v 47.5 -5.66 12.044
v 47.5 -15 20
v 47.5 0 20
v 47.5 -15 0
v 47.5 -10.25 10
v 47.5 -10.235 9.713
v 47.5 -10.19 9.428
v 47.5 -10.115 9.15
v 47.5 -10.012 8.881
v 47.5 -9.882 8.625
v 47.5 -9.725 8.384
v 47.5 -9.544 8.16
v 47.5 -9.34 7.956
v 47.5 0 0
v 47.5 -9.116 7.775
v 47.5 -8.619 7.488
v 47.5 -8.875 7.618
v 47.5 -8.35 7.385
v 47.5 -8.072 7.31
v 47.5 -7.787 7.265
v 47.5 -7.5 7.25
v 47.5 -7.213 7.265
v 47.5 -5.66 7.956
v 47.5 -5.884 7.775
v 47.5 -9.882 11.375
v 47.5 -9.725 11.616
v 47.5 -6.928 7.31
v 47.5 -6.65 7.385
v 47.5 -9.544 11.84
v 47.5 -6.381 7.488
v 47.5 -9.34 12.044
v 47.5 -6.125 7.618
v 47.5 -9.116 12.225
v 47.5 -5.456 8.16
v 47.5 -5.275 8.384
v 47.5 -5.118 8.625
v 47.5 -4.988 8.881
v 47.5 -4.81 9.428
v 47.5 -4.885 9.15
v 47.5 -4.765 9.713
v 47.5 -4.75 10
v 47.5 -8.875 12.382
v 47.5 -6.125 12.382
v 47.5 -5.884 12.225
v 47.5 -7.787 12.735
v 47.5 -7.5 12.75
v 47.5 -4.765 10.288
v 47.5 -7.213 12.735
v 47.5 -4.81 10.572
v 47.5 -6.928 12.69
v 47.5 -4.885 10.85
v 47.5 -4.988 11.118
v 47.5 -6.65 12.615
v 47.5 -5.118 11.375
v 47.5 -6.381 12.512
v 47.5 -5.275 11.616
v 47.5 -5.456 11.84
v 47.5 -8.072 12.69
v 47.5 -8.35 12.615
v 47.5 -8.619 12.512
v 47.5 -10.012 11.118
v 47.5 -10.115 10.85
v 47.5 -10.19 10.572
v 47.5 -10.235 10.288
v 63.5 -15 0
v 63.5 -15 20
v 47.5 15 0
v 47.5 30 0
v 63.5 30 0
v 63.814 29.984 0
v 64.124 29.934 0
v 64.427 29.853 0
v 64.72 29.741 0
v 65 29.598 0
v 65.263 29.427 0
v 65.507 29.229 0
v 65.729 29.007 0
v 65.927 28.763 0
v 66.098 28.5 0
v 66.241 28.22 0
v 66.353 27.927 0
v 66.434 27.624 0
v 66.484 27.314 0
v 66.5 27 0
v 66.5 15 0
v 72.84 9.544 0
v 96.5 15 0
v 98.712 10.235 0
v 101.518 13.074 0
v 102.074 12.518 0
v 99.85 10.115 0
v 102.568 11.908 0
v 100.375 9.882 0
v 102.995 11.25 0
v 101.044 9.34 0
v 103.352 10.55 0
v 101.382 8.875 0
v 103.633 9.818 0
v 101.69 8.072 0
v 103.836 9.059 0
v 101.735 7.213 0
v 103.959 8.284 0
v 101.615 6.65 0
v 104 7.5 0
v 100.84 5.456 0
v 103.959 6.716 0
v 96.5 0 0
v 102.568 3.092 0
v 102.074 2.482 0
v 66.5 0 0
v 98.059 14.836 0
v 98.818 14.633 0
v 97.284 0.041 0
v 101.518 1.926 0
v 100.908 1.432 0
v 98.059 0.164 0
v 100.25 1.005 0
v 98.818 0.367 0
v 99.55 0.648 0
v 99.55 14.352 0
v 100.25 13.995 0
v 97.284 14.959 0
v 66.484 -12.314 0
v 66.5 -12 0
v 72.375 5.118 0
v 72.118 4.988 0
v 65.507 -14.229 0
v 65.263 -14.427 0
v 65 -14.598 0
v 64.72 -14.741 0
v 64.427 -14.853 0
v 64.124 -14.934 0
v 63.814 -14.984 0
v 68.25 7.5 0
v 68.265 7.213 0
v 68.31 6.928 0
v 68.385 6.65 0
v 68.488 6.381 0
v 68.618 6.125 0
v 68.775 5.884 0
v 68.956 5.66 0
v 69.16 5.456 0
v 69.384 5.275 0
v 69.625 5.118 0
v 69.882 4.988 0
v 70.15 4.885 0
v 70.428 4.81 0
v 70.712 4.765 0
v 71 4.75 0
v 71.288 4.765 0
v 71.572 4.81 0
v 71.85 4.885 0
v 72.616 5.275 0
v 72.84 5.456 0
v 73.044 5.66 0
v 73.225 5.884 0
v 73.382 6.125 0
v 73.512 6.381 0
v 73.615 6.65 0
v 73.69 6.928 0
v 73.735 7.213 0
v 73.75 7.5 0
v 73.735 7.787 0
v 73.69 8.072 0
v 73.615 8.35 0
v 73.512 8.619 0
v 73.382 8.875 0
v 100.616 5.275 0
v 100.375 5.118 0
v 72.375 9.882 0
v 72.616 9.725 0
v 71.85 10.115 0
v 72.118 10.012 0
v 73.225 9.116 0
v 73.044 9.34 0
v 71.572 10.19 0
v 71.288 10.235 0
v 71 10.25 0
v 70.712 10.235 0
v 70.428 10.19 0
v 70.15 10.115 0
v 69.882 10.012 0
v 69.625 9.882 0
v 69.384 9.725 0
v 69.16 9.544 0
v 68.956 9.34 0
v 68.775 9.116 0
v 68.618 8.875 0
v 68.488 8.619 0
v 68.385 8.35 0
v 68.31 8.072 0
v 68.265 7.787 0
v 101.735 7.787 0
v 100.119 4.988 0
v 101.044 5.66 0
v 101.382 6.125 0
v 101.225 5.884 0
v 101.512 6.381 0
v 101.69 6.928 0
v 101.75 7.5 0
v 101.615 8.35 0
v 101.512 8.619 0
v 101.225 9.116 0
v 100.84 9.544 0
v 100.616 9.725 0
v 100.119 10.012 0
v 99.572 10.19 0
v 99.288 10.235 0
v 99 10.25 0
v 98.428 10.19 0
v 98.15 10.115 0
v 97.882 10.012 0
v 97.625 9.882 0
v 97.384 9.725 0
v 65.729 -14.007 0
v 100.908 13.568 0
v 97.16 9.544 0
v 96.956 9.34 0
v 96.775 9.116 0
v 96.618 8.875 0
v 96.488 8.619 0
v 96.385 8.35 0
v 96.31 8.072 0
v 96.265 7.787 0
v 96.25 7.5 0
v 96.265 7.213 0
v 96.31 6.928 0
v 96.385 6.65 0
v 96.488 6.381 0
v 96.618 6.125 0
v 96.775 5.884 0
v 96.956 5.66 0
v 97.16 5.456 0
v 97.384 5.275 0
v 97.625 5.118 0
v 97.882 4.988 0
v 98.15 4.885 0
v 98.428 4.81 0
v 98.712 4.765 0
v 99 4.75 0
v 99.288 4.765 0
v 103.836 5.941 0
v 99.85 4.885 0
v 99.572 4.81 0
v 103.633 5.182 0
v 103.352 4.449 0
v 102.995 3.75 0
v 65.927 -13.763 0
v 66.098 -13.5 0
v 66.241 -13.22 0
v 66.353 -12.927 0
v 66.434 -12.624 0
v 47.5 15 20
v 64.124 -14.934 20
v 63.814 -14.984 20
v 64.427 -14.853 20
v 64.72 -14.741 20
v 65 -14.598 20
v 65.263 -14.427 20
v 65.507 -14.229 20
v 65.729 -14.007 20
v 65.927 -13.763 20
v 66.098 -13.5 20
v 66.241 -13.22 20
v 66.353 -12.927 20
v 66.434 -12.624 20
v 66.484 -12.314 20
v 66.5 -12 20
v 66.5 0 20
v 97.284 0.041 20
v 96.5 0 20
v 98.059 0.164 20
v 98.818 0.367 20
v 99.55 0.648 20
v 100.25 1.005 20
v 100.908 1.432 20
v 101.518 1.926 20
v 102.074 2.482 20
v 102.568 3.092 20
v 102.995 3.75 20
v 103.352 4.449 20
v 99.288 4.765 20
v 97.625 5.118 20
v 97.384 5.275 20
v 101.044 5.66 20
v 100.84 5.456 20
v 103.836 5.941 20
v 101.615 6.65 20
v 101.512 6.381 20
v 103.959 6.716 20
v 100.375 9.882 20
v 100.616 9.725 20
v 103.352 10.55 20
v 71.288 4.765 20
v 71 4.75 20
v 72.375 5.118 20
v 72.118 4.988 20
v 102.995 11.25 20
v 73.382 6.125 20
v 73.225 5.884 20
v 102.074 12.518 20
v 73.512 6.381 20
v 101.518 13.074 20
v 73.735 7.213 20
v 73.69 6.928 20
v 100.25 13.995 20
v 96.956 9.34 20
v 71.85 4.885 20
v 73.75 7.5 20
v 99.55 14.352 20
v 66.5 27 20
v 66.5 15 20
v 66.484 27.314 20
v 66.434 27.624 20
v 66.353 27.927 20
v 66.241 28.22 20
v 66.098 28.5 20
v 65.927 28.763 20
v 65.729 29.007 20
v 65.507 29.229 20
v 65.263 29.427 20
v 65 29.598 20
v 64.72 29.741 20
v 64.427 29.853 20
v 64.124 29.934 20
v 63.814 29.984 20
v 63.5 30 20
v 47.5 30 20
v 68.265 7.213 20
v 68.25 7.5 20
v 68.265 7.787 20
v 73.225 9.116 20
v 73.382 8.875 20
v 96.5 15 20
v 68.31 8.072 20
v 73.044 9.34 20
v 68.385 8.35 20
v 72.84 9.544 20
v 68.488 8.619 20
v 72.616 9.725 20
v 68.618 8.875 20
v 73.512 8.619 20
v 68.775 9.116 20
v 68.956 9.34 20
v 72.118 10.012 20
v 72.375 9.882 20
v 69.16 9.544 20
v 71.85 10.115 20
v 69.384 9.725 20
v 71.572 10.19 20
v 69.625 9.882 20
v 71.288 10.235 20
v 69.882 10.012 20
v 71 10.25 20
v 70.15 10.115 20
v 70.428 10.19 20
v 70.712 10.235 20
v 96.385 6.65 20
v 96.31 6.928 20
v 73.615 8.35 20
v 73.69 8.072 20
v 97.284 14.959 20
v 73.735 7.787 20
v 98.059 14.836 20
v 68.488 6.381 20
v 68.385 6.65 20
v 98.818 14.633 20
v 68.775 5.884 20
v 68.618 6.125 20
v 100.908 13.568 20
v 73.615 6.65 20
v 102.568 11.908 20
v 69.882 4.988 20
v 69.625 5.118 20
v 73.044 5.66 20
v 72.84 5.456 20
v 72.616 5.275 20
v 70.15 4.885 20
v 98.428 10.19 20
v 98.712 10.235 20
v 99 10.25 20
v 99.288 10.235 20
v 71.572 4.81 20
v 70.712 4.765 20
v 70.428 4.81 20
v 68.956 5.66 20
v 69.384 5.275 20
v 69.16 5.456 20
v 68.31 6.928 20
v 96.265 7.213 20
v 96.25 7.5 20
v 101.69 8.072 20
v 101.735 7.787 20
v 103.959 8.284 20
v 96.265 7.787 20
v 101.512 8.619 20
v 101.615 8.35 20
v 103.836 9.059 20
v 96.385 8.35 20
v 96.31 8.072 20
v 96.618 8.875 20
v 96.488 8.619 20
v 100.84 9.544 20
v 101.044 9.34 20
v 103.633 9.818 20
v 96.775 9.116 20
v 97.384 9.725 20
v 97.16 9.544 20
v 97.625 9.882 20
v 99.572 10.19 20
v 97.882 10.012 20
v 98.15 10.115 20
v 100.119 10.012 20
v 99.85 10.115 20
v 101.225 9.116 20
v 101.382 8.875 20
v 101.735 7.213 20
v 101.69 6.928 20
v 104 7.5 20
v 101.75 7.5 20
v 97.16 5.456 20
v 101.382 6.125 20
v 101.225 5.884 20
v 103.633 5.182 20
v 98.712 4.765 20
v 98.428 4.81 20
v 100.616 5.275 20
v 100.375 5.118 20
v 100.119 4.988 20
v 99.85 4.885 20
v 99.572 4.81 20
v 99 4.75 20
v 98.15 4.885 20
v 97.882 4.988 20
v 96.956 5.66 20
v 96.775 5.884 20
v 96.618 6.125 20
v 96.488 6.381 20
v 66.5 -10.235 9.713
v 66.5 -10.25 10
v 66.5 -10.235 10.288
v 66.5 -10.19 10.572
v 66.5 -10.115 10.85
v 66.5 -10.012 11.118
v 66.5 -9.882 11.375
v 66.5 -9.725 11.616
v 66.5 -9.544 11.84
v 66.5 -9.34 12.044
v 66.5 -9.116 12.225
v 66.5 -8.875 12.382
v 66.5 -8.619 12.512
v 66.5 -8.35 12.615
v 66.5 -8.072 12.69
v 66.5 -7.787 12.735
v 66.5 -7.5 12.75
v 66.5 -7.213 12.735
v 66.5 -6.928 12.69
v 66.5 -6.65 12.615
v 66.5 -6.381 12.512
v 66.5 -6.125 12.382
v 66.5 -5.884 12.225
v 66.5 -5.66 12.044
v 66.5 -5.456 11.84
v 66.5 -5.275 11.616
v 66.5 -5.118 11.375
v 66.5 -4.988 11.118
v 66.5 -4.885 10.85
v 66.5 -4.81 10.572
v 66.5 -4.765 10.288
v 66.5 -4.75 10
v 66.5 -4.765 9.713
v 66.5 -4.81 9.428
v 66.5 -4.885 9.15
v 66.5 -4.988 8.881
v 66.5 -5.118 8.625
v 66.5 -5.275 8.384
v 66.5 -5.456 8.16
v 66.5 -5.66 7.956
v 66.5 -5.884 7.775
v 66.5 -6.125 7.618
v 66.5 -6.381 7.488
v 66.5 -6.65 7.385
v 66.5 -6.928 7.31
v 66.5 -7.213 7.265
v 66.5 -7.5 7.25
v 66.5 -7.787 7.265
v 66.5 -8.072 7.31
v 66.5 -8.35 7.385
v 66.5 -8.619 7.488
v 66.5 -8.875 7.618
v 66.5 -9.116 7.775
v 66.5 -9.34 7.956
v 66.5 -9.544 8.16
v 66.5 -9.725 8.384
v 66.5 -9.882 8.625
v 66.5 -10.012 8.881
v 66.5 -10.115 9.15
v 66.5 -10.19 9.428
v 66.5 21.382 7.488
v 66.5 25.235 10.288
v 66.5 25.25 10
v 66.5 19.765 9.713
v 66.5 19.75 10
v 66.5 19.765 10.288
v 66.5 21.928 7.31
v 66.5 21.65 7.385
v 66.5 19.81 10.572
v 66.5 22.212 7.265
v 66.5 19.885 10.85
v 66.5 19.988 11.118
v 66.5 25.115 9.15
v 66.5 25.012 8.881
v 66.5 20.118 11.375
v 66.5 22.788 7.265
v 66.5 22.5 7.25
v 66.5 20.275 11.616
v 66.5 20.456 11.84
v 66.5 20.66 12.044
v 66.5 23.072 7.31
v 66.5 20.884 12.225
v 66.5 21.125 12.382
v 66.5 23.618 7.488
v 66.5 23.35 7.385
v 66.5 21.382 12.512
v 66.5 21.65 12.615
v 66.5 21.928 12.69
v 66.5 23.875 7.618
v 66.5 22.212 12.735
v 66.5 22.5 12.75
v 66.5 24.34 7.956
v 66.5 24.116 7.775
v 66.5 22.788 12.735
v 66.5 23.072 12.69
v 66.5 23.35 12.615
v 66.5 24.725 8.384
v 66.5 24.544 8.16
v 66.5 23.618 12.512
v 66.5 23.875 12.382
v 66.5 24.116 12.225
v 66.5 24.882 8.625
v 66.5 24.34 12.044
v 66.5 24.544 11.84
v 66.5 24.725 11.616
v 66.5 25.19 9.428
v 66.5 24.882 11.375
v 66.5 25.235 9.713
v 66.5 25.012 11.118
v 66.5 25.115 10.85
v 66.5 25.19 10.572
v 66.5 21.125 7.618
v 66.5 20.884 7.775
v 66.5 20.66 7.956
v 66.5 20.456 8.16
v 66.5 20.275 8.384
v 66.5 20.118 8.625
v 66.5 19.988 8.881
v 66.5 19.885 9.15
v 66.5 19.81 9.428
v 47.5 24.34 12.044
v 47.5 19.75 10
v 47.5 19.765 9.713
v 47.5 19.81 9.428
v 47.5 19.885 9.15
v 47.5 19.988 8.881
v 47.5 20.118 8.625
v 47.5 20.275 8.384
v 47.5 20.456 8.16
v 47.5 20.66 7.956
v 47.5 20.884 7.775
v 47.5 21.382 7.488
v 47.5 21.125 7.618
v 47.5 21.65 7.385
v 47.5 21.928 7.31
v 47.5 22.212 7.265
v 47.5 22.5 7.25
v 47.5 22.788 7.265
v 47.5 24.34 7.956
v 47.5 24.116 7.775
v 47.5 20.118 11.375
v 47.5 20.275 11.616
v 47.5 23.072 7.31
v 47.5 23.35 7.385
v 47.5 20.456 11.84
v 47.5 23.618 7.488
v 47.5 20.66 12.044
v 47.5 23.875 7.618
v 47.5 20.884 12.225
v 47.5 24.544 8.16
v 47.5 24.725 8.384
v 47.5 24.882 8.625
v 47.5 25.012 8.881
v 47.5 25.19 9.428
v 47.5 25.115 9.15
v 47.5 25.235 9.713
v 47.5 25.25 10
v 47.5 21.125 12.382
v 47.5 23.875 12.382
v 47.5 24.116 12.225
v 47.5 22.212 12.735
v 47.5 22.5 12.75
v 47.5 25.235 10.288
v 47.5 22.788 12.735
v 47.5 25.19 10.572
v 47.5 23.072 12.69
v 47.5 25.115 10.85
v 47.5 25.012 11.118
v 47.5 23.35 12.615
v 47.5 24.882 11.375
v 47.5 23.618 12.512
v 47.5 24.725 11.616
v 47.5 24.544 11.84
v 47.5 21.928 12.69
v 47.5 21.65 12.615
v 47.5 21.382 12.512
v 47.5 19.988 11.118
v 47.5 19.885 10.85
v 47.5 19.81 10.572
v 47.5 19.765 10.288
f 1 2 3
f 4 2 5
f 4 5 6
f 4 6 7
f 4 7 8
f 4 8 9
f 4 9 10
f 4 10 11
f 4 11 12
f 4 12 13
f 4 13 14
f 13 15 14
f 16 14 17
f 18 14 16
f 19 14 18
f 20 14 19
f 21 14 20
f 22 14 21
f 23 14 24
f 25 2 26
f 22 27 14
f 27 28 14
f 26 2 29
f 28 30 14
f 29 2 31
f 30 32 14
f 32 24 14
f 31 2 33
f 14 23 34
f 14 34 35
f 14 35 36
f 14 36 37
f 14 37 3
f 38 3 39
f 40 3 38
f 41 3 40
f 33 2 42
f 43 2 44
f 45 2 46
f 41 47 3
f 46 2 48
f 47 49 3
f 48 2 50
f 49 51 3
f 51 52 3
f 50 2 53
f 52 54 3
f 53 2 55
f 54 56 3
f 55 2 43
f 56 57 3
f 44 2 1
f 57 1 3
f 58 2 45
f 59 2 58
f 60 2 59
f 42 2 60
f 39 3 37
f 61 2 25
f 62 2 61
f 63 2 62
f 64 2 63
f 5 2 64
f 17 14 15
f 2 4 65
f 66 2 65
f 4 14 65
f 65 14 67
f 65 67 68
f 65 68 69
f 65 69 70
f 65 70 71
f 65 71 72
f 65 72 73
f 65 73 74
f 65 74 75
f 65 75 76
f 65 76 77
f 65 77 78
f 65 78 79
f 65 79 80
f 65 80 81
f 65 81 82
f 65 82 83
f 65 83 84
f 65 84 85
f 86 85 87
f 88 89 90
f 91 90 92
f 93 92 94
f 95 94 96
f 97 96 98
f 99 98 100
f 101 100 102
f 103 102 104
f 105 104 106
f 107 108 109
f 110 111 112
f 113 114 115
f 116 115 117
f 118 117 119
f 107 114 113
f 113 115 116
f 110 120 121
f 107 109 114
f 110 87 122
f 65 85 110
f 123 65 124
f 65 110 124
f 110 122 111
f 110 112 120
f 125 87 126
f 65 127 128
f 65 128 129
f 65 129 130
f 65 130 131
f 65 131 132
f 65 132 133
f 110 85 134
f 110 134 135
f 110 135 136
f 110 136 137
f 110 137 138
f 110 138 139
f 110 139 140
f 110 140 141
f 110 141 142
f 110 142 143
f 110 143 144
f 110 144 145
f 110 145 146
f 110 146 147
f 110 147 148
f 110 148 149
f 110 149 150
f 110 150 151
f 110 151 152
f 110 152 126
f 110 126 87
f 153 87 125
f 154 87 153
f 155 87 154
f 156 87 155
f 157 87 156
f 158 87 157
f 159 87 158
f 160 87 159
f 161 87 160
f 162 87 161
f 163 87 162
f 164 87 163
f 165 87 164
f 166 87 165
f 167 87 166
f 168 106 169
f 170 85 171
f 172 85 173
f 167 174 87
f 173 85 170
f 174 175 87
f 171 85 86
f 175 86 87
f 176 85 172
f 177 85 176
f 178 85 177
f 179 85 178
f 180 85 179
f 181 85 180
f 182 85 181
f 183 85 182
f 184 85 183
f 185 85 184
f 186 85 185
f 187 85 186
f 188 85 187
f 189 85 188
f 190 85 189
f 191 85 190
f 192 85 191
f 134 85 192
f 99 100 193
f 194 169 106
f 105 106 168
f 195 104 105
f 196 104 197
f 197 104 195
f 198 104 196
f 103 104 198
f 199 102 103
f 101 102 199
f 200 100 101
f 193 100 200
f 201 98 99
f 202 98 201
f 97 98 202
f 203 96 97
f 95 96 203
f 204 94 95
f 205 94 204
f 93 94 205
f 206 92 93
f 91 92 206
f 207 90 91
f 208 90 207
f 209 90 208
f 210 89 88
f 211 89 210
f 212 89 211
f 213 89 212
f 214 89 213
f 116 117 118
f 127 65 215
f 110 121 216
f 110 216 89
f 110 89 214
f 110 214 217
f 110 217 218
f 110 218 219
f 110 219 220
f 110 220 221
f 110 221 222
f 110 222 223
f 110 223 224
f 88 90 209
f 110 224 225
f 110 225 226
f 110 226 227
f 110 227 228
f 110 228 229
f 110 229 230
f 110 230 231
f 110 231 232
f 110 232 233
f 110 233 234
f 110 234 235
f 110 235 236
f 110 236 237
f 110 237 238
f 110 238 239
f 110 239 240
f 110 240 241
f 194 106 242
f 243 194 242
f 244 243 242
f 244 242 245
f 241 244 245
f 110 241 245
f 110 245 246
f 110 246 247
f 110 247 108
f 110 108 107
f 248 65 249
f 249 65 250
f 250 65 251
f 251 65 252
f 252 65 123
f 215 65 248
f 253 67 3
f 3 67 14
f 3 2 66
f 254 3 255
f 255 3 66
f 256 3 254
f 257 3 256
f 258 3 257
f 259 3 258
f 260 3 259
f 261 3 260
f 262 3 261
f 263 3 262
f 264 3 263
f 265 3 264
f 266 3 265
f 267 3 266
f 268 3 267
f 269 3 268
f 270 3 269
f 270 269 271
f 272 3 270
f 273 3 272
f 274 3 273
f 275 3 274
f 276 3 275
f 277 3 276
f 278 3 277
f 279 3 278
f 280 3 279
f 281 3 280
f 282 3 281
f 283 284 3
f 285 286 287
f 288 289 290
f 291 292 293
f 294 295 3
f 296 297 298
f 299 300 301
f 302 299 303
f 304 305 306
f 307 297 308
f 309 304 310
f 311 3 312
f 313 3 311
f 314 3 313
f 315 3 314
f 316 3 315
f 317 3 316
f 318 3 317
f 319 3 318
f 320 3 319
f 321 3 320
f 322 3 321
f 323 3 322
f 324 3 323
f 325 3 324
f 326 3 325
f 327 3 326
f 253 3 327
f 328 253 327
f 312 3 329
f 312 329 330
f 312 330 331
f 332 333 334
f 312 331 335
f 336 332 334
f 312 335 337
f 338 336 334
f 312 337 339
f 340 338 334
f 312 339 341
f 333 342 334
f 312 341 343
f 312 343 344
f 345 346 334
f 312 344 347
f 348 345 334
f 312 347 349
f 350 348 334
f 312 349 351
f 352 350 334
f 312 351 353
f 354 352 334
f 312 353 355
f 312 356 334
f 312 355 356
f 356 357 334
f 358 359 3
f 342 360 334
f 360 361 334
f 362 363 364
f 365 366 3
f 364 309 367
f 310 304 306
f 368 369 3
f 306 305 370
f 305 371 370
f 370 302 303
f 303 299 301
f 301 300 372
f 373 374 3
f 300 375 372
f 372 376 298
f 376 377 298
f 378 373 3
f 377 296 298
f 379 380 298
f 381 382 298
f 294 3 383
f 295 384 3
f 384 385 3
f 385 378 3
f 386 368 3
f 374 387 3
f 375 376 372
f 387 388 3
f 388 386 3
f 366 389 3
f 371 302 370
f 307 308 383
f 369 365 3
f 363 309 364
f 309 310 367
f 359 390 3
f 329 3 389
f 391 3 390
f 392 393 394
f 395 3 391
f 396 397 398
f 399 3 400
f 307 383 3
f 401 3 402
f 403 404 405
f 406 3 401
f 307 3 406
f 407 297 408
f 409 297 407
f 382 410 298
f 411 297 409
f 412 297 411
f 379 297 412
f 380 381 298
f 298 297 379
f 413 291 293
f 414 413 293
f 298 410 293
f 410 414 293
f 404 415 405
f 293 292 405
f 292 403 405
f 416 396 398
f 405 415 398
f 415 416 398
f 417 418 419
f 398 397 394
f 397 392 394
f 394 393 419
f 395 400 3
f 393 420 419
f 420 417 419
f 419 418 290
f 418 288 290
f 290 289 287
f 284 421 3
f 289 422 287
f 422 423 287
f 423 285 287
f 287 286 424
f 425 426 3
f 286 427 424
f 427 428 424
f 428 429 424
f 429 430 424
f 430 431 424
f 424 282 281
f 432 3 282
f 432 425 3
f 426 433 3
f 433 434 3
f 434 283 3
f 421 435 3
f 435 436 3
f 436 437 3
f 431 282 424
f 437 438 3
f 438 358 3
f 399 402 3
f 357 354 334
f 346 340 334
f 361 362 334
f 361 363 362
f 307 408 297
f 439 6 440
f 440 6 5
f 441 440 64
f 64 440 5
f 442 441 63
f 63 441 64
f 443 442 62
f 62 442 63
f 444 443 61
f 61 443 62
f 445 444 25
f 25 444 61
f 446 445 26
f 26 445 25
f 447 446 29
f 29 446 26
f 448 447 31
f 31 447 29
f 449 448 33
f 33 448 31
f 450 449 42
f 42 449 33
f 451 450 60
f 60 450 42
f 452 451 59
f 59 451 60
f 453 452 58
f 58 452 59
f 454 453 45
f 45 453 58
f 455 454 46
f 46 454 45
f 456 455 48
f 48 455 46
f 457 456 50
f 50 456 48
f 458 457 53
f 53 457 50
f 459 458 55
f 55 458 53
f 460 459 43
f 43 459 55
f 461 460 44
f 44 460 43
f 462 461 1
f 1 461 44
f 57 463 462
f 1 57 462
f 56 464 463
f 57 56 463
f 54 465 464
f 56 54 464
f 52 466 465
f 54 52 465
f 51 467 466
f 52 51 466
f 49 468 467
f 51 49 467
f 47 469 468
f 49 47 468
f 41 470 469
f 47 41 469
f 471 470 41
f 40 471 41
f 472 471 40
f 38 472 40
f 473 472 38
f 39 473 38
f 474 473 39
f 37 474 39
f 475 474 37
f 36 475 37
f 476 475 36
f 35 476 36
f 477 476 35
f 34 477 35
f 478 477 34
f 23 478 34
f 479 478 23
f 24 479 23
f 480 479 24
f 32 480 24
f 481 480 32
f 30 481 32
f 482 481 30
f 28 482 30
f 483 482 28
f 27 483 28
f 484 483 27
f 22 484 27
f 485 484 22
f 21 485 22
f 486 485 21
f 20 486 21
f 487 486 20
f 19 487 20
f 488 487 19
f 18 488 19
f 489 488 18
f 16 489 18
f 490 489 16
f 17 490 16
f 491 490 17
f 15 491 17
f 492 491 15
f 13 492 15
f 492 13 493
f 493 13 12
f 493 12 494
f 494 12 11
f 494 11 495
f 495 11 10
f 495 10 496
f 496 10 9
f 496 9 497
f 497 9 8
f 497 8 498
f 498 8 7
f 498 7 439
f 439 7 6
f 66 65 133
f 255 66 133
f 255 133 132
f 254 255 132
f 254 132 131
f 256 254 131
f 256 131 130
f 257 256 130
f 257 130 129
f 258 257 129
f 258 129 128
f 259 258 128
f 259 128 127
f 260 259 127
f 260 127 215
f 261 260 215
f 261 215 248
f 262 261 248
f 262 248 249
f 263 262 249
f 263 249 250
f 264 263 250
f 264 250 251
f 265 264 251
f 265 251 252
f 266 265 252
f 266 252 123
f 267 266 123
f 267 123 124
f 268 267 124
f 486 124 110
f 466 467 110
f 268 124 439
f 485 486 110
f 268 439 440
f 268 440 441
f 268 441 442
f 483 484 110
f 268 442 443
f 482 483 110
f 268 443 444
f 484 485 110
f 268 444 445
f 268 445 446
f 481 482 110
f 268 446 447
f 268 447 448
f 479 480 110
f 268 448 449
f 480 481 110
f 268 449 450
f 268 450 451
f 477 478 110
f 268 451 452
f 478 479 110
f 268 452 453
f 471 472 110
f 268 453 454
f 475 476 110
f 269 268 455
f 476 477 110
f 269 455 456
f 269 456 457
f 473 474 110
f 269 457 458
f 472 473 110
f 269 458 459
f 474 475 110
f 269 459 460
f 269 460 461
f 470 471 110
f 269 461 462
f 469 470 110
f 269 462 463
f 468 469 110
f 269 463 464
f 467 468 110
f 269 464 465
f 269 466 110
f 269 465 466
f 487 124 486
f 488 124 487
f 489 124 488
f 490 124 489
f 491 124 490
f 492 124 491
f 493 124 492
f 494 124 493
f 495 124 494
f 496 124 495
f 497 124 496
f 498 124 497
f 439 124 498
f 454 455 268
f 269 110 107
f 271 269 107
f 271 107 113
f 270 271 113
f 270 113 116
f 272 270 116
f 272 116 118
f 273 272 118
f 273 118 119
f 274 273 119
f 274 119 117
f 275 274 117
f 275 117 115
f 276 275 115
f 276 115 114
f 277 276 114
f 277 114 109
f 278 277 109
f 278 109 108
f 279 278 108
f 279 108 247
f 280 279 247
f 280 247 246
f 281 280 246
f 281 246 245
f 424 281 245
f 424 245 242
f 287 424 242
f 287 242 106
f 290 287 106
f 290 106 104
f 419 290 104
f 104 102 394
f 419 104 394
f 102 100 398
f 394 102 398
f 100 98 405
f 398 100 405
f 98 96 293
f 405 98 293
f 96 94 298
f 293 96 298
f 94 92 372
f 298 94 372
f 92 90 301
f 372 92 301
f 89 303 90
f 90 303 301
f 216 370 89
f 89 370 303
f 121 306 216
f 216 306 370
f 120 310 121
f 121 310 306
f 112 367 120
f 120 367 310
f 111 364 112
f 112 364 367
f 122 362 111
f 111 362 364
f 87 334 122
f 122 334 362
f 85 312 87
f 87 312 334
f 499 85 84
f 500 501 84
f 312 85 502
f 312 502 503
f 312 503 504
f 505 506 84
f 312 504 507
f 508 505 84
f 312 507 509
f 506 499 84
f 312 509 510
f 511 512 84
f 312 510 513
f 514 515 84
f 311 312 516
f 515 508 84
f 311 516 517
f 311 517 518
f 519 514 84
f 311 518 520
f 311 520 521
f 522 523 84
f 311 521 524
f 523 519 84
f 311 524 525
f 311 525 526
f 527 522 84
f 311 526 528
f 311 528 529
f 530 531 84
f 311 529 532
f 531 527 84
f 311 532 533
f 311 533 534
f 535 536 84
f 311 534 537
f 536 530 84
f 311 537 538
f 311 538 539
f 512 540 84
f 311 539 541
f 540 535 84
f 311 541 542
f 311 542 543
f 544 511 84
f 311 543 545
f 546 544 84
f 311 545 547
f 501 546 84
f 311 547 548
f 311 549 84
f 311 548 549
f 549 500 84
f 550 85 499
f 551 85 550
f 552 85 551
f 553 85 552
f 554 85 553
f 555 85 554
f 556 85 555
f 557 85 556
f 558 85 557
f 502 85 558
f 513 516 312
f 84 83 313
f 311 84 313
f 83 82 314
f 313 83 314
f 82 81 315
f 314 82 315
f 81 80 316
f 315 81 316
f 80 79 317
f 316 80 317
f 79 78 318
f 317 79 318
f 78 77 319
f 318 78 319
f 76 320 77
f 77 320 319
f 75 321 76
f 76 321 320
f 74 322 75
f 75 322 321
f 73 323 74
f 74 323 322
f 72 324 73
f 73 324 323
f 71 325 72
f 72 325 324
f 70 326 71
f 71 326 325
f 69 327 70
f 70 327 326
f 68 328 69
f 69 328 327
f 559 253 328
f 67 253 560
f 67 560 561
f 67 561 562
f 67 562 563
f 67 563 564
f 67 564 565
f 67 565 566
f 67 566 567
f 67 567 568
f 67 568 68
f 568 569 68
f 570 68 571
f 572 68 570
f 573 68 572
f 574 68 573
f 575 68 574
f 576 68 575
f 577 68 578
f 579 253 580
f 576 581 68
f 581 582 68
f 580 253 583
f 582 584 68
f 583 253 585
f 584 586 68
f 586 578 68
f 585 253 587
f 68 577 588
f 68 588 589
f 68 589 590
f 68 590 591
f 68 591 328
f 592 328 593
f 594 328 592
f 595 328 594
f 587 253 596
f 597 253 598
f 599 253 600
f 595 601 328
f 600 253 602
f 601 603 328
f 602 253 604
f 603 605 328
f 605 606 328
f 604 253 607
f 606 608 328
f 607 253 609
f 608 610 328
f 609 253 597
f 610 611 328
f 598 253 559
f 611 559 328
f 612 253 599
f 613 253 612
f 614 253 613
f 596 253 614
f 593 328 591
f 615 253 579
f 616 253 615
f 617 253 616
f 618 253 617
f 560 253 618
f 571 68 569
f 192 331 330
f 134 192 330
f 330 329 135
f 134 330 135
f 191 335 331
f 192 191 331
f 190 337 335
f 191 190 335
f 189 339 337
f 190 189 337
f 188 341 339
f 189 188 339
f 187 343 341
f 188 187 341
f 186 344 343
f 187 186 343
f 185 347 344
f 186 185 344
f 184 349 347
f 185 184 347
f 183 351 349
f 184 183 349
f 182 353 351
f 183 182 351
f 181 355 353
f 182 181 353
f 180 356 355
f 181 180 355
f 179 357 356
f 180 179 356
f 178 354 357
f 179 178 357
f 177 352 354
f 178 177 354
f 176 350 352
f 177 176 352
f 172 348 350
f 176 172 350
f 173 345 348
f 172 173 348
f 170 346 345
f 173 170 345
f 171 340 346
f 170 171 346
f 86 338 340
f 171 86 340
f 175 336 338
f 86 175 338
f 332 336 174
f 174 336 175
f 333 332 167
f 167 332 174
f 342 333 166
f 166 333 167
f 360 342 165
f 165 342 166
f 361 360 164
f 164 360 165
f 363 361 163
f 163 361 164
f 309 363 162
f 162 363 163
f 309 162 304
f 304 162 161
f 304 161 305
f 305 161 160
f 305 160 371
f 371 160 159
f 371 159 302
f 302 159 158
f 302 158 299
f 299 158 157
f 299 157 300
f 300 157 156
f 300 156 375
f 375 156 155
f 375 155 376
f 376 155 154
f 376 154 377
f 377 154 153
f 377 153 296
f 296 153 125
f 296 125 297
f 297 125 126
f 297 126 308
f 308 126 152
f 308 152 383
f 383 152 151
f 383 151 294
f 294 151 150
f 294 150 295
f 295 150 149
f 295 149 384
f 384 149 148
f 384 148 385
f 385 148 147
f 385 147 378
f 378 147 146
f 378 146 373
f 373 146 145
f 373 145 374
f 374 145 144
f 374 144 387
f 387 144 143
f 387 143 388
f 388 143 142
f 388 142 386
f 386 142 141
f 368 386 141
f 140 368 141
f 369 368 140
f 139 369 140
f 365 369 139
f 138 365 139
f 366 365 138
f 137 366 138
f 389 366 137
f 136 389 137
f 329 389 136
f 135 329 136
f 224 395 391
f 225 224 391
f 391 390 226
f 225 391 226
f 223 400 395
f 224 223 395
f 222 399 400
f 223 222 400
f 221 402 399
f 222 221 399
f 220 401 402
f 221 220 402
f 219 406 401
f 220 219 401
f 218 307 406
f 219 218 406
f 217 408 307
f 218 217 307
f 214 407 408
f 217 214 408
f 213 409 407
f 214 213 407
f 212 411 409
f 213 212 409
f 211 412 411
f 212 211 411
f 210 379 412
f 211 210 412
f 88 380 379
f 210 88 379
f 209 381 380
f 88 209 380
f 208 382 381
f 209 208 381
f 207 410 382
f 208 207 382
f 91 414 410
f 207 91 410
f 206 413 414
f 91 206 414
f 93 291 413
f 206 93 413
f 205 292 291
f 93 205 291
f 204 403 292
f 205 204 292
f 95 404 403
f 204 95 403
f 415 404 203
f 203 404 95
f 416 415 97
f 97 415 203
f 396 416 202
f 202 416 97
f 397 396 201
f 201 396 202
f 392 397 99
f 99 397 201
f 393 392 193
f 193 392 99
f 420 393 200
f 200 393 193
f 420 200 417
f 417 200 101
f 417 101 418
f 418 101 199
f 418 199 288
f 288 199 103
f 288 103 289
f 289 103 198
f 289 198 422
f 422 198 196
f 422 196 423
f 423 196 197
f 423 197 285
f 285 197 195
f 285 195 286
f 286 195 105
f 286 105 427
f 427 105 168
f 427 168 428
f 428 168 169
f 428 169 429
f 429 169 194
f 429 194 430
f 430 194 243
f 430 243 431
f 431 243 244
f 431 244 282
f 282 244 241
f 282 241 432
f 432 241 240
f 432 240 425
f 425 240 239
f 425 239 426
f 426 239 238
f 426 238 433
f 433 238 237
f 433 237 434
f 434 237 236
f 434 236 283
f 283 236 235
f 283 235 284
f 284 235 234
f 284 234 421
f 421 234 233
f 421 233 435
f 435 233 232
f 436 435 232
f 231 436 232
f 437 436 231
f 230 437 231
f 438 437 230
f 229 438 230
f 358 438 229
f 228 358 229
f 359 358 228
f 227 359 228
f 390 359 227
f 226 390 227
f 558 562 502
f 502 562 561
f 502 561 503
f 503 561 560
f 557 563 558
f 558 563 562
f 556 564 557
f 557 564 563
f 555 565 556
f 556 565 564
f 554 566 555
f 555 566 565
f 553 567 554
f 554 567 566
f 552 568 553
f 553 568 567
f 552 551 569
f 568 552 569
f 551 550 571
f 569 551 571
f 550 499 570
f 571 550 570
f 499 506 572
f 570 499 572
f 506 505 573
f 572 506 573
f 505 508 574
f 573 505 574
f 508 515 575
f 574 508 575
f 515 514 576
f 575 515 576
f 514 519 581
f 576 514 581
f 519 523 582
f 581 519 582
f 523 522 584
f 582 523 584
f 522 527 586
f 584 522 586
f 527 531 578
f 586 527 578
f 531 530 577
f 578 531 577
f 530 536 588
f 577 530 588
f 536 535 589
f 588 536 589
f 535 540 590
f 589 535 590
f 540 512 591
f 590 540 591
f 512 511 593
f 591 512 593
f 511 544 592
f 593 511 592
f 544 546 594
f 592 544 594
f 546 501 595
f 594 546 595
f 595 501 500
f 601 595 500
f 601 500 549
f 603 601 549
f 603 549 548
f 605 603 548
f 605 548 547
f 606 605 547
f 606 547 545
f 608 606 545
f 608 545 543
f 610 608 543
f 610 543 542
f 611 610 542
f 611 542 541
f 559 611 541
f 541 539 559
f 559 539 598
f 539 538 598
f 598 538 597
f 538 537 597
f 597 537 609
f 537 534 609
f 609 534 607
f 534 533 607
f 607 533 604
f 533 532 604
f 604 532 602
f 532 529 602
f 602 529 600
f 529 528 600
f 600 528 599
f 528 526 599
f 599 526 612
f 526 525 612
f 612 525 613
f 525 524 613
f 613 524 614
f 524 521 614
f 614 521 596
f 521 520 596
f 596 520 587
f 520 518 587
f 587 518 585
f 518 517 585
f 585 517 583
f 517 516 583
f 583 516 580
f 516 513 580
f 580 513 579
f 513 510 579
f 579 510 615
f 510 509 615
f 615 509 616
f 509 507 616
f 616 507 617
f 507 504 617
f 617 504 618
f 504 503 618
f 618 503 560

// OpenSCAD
// file: library.scad
//rounded cube Functions from: http://www.thingiverse.com/thing:38069


module cube_fillet(size,radius=-1,vertical,top,bottom,center=false,$fn=0){
    if (center) {
        cube_fillet_inside(size, radius, vertical, top, bottom, $fn=$fn);
    } else {
        translate([size[0]/2, size[1]/2, size[2]/2])
            cube_fillet_inside(size, radius, vertical, top, bottom, $fn=$fn);
    }
}
module fillet(radius, height=100, $fn=60) {  
    //this creates negative of fillet,
    //i.e. thing to be substracted from object
    translate([-radius, -radius, -height/2-0.01])
        difference() {
            cube([radius*2, radius*2, height+0.02]);
            cylinder(r=radius, h=height+0.02, $fn=$fn);
        }
}

module cube_negative_fillet(size,radius=-1,vertical, top,bottom,$fn=0){
    j=[1,0,1,0];

    for (i=[0:3]) {
        if (radius > -1) {
            rotate([0, 0, 90*i])
                translate([size[1-j[i]]/2, size[j[i]]/2, 0])
                    fillet(radius, size[2], $fn=$fn);
        } else {
            rotate([0, 0, 90*i])
                translate([size[1-j[i]]/2, size[j[i]]/2, 0])
                    fillet(vertical[i], size[2], $fn=$fn);

        }
        rotate([90*i, -90, 0])
            translate([size[2]/2, size[j[i]]/2, 0 ])
                fillet(top[i], size[1-j[i]], $fn=$fn);
        rotate([90*(4-i), 90, 0])
            translate([size[2]/2, size[j[i]]/2, 0])
                fillet(bottom[i], size[1-j[i]], $fn=$fn);
    }
}

module cube_fillet_inside(size,radius=-1,vertical,top,bottom,$fn=0){

    if (radius == 0) {
        cube(size, center=true);
    } else {
        difference() {
            cube(size, center=true);
            cube_negative_fillet(size, radius, vertical, top, bottom, $fn=$fn);
        }
    }
}
// file: dimensions.scad
// Dimensions
// Author: sdavi


LM8UU = [8, 15, 24];//rod diameter,outter diameter, length
LM12UU = [12, 21, 30];
LM12LUU = [12, 21, 57];

BEARING_624 = [4,13,5]; //inner diameter(hole), outter diameter, thickness (http://reprap.org/wiki/Ball_bearing)
BEARING_2x624 = [4, 13, 10]; // 2 624 bearings together, good size for GT2

BEARING_6300 = [10,35,11]; //inner diameter, outer diameter, thickness



GT2_belt_width = 6;
GT2_belt_pitch = 2;
GT2_belt_thickness = 1.38;
GT2_belt_tooth_height = 0.75;  
GT2_belt_tooth_ratio = 0.5;



GT2_pulley_geared_diameter=12.2;//measured from top of tooth to top of tooth opp side// 12.2 is for the 20 tooth pulley

//from metric (prusa i3)
m4_diameter = 4.6;
m4_nut_diameter = 7.6;
m4_nut_diameter_horizontal = 8.15;

m3_diameter = 3.6;
m3_nut_diameter = 5.3;
m3_nut_diameter_horizontal = 6.8;
m3_washer_diameter = 6.9;
//end i3 variables

m5_diameter = 5.5;

//Hex Head M3x30: Head 5.5mm flat to flat, 2.12mm thick
m3_hex_head_diameter = 5.5*2/sqrt(3) + 0.2;

M4 = m4_diameter;
M3 = m3_diameter;
M5 = m5_diameter;
m4_washer_thickness = 0.8; //flat and penny washers
m4_washer_diameter = 9.6;

nema17_holes = 31;// mm between screws
nema17_width = 42; //width
// file: configuration.scad
// Configuration
// Author: sdavi


include <dimensions.scad>
use <library.scad>


x_rod_distance = 45;

y_bearing = LM8UU;
x_bearing = LM8UU;
z_bearing = LM12LUU;
belt_bearing = BEARING_2x624;


end_belt_bearing_distance = 25;// distance between 2 bearings on y-ends
belt_clearance = 9.5; //space for belts

frame_screw = M5; //m5 screws for v/tslot

frame_spacer_height = 18; //height to spacer to mount to frame to clear x-ends 


// calculated vars

//y bearing block
y_bearing_block_length = 2*y_bearing[2] + M3*2 + 5;
y_bearing_block_width = y_bearing[1]+5;
y_bearing_block_height = 6+y_bearing[1]/2;

xy_bearing_distance = y_bearing_block_width/2+belt_clearance+belt_bearing[1]/2; //distance between center of y-bearing to center of x-belt bearing 


//min height for belt bearings
min_beltbearing_height = max(((belt_bearing[2]+m4_washer_thickness*2) * 2), y_bearing_block_height);
// main file
// Adapter for i3 y-carriage
// Author: sdavi


include <configuration.scad>
include <dimensions.scad>


difference(){
	union(){
		cube([170/2+(33-5)/2+15/2-10, 15, 20]);
		translate([95/2, -15 ,0] ) cube_fillet([19, 15*2+15, 20], vertical=[3,0,0,3]);	
		translate([170/2+(33-5)/2+15/2-10, 15/2, 0]) cylinder(d=15, h=20, $fn=60);


	}
	cube([95/2, 15, 20]);

	translate([170/2+(33-5)/2, 15/2, 0]) cylinder(d=M5, h=20, $fn=60);
	translate([170/2-(33-5)/2, 15/2, 0]) cylinder(d=M5, h=20, $fn=60);

	translate([95/2-0.1,-15/2, 20/2]) rotate([0,90,0]) cylinder(d=frame_screw, h=20, $fn=60);
	translate([95/2-0.1,15+15/2, 20/2]) rotate([0,90,0]) cylinder(d=frame_screw, h=20, $fn=60);


}
